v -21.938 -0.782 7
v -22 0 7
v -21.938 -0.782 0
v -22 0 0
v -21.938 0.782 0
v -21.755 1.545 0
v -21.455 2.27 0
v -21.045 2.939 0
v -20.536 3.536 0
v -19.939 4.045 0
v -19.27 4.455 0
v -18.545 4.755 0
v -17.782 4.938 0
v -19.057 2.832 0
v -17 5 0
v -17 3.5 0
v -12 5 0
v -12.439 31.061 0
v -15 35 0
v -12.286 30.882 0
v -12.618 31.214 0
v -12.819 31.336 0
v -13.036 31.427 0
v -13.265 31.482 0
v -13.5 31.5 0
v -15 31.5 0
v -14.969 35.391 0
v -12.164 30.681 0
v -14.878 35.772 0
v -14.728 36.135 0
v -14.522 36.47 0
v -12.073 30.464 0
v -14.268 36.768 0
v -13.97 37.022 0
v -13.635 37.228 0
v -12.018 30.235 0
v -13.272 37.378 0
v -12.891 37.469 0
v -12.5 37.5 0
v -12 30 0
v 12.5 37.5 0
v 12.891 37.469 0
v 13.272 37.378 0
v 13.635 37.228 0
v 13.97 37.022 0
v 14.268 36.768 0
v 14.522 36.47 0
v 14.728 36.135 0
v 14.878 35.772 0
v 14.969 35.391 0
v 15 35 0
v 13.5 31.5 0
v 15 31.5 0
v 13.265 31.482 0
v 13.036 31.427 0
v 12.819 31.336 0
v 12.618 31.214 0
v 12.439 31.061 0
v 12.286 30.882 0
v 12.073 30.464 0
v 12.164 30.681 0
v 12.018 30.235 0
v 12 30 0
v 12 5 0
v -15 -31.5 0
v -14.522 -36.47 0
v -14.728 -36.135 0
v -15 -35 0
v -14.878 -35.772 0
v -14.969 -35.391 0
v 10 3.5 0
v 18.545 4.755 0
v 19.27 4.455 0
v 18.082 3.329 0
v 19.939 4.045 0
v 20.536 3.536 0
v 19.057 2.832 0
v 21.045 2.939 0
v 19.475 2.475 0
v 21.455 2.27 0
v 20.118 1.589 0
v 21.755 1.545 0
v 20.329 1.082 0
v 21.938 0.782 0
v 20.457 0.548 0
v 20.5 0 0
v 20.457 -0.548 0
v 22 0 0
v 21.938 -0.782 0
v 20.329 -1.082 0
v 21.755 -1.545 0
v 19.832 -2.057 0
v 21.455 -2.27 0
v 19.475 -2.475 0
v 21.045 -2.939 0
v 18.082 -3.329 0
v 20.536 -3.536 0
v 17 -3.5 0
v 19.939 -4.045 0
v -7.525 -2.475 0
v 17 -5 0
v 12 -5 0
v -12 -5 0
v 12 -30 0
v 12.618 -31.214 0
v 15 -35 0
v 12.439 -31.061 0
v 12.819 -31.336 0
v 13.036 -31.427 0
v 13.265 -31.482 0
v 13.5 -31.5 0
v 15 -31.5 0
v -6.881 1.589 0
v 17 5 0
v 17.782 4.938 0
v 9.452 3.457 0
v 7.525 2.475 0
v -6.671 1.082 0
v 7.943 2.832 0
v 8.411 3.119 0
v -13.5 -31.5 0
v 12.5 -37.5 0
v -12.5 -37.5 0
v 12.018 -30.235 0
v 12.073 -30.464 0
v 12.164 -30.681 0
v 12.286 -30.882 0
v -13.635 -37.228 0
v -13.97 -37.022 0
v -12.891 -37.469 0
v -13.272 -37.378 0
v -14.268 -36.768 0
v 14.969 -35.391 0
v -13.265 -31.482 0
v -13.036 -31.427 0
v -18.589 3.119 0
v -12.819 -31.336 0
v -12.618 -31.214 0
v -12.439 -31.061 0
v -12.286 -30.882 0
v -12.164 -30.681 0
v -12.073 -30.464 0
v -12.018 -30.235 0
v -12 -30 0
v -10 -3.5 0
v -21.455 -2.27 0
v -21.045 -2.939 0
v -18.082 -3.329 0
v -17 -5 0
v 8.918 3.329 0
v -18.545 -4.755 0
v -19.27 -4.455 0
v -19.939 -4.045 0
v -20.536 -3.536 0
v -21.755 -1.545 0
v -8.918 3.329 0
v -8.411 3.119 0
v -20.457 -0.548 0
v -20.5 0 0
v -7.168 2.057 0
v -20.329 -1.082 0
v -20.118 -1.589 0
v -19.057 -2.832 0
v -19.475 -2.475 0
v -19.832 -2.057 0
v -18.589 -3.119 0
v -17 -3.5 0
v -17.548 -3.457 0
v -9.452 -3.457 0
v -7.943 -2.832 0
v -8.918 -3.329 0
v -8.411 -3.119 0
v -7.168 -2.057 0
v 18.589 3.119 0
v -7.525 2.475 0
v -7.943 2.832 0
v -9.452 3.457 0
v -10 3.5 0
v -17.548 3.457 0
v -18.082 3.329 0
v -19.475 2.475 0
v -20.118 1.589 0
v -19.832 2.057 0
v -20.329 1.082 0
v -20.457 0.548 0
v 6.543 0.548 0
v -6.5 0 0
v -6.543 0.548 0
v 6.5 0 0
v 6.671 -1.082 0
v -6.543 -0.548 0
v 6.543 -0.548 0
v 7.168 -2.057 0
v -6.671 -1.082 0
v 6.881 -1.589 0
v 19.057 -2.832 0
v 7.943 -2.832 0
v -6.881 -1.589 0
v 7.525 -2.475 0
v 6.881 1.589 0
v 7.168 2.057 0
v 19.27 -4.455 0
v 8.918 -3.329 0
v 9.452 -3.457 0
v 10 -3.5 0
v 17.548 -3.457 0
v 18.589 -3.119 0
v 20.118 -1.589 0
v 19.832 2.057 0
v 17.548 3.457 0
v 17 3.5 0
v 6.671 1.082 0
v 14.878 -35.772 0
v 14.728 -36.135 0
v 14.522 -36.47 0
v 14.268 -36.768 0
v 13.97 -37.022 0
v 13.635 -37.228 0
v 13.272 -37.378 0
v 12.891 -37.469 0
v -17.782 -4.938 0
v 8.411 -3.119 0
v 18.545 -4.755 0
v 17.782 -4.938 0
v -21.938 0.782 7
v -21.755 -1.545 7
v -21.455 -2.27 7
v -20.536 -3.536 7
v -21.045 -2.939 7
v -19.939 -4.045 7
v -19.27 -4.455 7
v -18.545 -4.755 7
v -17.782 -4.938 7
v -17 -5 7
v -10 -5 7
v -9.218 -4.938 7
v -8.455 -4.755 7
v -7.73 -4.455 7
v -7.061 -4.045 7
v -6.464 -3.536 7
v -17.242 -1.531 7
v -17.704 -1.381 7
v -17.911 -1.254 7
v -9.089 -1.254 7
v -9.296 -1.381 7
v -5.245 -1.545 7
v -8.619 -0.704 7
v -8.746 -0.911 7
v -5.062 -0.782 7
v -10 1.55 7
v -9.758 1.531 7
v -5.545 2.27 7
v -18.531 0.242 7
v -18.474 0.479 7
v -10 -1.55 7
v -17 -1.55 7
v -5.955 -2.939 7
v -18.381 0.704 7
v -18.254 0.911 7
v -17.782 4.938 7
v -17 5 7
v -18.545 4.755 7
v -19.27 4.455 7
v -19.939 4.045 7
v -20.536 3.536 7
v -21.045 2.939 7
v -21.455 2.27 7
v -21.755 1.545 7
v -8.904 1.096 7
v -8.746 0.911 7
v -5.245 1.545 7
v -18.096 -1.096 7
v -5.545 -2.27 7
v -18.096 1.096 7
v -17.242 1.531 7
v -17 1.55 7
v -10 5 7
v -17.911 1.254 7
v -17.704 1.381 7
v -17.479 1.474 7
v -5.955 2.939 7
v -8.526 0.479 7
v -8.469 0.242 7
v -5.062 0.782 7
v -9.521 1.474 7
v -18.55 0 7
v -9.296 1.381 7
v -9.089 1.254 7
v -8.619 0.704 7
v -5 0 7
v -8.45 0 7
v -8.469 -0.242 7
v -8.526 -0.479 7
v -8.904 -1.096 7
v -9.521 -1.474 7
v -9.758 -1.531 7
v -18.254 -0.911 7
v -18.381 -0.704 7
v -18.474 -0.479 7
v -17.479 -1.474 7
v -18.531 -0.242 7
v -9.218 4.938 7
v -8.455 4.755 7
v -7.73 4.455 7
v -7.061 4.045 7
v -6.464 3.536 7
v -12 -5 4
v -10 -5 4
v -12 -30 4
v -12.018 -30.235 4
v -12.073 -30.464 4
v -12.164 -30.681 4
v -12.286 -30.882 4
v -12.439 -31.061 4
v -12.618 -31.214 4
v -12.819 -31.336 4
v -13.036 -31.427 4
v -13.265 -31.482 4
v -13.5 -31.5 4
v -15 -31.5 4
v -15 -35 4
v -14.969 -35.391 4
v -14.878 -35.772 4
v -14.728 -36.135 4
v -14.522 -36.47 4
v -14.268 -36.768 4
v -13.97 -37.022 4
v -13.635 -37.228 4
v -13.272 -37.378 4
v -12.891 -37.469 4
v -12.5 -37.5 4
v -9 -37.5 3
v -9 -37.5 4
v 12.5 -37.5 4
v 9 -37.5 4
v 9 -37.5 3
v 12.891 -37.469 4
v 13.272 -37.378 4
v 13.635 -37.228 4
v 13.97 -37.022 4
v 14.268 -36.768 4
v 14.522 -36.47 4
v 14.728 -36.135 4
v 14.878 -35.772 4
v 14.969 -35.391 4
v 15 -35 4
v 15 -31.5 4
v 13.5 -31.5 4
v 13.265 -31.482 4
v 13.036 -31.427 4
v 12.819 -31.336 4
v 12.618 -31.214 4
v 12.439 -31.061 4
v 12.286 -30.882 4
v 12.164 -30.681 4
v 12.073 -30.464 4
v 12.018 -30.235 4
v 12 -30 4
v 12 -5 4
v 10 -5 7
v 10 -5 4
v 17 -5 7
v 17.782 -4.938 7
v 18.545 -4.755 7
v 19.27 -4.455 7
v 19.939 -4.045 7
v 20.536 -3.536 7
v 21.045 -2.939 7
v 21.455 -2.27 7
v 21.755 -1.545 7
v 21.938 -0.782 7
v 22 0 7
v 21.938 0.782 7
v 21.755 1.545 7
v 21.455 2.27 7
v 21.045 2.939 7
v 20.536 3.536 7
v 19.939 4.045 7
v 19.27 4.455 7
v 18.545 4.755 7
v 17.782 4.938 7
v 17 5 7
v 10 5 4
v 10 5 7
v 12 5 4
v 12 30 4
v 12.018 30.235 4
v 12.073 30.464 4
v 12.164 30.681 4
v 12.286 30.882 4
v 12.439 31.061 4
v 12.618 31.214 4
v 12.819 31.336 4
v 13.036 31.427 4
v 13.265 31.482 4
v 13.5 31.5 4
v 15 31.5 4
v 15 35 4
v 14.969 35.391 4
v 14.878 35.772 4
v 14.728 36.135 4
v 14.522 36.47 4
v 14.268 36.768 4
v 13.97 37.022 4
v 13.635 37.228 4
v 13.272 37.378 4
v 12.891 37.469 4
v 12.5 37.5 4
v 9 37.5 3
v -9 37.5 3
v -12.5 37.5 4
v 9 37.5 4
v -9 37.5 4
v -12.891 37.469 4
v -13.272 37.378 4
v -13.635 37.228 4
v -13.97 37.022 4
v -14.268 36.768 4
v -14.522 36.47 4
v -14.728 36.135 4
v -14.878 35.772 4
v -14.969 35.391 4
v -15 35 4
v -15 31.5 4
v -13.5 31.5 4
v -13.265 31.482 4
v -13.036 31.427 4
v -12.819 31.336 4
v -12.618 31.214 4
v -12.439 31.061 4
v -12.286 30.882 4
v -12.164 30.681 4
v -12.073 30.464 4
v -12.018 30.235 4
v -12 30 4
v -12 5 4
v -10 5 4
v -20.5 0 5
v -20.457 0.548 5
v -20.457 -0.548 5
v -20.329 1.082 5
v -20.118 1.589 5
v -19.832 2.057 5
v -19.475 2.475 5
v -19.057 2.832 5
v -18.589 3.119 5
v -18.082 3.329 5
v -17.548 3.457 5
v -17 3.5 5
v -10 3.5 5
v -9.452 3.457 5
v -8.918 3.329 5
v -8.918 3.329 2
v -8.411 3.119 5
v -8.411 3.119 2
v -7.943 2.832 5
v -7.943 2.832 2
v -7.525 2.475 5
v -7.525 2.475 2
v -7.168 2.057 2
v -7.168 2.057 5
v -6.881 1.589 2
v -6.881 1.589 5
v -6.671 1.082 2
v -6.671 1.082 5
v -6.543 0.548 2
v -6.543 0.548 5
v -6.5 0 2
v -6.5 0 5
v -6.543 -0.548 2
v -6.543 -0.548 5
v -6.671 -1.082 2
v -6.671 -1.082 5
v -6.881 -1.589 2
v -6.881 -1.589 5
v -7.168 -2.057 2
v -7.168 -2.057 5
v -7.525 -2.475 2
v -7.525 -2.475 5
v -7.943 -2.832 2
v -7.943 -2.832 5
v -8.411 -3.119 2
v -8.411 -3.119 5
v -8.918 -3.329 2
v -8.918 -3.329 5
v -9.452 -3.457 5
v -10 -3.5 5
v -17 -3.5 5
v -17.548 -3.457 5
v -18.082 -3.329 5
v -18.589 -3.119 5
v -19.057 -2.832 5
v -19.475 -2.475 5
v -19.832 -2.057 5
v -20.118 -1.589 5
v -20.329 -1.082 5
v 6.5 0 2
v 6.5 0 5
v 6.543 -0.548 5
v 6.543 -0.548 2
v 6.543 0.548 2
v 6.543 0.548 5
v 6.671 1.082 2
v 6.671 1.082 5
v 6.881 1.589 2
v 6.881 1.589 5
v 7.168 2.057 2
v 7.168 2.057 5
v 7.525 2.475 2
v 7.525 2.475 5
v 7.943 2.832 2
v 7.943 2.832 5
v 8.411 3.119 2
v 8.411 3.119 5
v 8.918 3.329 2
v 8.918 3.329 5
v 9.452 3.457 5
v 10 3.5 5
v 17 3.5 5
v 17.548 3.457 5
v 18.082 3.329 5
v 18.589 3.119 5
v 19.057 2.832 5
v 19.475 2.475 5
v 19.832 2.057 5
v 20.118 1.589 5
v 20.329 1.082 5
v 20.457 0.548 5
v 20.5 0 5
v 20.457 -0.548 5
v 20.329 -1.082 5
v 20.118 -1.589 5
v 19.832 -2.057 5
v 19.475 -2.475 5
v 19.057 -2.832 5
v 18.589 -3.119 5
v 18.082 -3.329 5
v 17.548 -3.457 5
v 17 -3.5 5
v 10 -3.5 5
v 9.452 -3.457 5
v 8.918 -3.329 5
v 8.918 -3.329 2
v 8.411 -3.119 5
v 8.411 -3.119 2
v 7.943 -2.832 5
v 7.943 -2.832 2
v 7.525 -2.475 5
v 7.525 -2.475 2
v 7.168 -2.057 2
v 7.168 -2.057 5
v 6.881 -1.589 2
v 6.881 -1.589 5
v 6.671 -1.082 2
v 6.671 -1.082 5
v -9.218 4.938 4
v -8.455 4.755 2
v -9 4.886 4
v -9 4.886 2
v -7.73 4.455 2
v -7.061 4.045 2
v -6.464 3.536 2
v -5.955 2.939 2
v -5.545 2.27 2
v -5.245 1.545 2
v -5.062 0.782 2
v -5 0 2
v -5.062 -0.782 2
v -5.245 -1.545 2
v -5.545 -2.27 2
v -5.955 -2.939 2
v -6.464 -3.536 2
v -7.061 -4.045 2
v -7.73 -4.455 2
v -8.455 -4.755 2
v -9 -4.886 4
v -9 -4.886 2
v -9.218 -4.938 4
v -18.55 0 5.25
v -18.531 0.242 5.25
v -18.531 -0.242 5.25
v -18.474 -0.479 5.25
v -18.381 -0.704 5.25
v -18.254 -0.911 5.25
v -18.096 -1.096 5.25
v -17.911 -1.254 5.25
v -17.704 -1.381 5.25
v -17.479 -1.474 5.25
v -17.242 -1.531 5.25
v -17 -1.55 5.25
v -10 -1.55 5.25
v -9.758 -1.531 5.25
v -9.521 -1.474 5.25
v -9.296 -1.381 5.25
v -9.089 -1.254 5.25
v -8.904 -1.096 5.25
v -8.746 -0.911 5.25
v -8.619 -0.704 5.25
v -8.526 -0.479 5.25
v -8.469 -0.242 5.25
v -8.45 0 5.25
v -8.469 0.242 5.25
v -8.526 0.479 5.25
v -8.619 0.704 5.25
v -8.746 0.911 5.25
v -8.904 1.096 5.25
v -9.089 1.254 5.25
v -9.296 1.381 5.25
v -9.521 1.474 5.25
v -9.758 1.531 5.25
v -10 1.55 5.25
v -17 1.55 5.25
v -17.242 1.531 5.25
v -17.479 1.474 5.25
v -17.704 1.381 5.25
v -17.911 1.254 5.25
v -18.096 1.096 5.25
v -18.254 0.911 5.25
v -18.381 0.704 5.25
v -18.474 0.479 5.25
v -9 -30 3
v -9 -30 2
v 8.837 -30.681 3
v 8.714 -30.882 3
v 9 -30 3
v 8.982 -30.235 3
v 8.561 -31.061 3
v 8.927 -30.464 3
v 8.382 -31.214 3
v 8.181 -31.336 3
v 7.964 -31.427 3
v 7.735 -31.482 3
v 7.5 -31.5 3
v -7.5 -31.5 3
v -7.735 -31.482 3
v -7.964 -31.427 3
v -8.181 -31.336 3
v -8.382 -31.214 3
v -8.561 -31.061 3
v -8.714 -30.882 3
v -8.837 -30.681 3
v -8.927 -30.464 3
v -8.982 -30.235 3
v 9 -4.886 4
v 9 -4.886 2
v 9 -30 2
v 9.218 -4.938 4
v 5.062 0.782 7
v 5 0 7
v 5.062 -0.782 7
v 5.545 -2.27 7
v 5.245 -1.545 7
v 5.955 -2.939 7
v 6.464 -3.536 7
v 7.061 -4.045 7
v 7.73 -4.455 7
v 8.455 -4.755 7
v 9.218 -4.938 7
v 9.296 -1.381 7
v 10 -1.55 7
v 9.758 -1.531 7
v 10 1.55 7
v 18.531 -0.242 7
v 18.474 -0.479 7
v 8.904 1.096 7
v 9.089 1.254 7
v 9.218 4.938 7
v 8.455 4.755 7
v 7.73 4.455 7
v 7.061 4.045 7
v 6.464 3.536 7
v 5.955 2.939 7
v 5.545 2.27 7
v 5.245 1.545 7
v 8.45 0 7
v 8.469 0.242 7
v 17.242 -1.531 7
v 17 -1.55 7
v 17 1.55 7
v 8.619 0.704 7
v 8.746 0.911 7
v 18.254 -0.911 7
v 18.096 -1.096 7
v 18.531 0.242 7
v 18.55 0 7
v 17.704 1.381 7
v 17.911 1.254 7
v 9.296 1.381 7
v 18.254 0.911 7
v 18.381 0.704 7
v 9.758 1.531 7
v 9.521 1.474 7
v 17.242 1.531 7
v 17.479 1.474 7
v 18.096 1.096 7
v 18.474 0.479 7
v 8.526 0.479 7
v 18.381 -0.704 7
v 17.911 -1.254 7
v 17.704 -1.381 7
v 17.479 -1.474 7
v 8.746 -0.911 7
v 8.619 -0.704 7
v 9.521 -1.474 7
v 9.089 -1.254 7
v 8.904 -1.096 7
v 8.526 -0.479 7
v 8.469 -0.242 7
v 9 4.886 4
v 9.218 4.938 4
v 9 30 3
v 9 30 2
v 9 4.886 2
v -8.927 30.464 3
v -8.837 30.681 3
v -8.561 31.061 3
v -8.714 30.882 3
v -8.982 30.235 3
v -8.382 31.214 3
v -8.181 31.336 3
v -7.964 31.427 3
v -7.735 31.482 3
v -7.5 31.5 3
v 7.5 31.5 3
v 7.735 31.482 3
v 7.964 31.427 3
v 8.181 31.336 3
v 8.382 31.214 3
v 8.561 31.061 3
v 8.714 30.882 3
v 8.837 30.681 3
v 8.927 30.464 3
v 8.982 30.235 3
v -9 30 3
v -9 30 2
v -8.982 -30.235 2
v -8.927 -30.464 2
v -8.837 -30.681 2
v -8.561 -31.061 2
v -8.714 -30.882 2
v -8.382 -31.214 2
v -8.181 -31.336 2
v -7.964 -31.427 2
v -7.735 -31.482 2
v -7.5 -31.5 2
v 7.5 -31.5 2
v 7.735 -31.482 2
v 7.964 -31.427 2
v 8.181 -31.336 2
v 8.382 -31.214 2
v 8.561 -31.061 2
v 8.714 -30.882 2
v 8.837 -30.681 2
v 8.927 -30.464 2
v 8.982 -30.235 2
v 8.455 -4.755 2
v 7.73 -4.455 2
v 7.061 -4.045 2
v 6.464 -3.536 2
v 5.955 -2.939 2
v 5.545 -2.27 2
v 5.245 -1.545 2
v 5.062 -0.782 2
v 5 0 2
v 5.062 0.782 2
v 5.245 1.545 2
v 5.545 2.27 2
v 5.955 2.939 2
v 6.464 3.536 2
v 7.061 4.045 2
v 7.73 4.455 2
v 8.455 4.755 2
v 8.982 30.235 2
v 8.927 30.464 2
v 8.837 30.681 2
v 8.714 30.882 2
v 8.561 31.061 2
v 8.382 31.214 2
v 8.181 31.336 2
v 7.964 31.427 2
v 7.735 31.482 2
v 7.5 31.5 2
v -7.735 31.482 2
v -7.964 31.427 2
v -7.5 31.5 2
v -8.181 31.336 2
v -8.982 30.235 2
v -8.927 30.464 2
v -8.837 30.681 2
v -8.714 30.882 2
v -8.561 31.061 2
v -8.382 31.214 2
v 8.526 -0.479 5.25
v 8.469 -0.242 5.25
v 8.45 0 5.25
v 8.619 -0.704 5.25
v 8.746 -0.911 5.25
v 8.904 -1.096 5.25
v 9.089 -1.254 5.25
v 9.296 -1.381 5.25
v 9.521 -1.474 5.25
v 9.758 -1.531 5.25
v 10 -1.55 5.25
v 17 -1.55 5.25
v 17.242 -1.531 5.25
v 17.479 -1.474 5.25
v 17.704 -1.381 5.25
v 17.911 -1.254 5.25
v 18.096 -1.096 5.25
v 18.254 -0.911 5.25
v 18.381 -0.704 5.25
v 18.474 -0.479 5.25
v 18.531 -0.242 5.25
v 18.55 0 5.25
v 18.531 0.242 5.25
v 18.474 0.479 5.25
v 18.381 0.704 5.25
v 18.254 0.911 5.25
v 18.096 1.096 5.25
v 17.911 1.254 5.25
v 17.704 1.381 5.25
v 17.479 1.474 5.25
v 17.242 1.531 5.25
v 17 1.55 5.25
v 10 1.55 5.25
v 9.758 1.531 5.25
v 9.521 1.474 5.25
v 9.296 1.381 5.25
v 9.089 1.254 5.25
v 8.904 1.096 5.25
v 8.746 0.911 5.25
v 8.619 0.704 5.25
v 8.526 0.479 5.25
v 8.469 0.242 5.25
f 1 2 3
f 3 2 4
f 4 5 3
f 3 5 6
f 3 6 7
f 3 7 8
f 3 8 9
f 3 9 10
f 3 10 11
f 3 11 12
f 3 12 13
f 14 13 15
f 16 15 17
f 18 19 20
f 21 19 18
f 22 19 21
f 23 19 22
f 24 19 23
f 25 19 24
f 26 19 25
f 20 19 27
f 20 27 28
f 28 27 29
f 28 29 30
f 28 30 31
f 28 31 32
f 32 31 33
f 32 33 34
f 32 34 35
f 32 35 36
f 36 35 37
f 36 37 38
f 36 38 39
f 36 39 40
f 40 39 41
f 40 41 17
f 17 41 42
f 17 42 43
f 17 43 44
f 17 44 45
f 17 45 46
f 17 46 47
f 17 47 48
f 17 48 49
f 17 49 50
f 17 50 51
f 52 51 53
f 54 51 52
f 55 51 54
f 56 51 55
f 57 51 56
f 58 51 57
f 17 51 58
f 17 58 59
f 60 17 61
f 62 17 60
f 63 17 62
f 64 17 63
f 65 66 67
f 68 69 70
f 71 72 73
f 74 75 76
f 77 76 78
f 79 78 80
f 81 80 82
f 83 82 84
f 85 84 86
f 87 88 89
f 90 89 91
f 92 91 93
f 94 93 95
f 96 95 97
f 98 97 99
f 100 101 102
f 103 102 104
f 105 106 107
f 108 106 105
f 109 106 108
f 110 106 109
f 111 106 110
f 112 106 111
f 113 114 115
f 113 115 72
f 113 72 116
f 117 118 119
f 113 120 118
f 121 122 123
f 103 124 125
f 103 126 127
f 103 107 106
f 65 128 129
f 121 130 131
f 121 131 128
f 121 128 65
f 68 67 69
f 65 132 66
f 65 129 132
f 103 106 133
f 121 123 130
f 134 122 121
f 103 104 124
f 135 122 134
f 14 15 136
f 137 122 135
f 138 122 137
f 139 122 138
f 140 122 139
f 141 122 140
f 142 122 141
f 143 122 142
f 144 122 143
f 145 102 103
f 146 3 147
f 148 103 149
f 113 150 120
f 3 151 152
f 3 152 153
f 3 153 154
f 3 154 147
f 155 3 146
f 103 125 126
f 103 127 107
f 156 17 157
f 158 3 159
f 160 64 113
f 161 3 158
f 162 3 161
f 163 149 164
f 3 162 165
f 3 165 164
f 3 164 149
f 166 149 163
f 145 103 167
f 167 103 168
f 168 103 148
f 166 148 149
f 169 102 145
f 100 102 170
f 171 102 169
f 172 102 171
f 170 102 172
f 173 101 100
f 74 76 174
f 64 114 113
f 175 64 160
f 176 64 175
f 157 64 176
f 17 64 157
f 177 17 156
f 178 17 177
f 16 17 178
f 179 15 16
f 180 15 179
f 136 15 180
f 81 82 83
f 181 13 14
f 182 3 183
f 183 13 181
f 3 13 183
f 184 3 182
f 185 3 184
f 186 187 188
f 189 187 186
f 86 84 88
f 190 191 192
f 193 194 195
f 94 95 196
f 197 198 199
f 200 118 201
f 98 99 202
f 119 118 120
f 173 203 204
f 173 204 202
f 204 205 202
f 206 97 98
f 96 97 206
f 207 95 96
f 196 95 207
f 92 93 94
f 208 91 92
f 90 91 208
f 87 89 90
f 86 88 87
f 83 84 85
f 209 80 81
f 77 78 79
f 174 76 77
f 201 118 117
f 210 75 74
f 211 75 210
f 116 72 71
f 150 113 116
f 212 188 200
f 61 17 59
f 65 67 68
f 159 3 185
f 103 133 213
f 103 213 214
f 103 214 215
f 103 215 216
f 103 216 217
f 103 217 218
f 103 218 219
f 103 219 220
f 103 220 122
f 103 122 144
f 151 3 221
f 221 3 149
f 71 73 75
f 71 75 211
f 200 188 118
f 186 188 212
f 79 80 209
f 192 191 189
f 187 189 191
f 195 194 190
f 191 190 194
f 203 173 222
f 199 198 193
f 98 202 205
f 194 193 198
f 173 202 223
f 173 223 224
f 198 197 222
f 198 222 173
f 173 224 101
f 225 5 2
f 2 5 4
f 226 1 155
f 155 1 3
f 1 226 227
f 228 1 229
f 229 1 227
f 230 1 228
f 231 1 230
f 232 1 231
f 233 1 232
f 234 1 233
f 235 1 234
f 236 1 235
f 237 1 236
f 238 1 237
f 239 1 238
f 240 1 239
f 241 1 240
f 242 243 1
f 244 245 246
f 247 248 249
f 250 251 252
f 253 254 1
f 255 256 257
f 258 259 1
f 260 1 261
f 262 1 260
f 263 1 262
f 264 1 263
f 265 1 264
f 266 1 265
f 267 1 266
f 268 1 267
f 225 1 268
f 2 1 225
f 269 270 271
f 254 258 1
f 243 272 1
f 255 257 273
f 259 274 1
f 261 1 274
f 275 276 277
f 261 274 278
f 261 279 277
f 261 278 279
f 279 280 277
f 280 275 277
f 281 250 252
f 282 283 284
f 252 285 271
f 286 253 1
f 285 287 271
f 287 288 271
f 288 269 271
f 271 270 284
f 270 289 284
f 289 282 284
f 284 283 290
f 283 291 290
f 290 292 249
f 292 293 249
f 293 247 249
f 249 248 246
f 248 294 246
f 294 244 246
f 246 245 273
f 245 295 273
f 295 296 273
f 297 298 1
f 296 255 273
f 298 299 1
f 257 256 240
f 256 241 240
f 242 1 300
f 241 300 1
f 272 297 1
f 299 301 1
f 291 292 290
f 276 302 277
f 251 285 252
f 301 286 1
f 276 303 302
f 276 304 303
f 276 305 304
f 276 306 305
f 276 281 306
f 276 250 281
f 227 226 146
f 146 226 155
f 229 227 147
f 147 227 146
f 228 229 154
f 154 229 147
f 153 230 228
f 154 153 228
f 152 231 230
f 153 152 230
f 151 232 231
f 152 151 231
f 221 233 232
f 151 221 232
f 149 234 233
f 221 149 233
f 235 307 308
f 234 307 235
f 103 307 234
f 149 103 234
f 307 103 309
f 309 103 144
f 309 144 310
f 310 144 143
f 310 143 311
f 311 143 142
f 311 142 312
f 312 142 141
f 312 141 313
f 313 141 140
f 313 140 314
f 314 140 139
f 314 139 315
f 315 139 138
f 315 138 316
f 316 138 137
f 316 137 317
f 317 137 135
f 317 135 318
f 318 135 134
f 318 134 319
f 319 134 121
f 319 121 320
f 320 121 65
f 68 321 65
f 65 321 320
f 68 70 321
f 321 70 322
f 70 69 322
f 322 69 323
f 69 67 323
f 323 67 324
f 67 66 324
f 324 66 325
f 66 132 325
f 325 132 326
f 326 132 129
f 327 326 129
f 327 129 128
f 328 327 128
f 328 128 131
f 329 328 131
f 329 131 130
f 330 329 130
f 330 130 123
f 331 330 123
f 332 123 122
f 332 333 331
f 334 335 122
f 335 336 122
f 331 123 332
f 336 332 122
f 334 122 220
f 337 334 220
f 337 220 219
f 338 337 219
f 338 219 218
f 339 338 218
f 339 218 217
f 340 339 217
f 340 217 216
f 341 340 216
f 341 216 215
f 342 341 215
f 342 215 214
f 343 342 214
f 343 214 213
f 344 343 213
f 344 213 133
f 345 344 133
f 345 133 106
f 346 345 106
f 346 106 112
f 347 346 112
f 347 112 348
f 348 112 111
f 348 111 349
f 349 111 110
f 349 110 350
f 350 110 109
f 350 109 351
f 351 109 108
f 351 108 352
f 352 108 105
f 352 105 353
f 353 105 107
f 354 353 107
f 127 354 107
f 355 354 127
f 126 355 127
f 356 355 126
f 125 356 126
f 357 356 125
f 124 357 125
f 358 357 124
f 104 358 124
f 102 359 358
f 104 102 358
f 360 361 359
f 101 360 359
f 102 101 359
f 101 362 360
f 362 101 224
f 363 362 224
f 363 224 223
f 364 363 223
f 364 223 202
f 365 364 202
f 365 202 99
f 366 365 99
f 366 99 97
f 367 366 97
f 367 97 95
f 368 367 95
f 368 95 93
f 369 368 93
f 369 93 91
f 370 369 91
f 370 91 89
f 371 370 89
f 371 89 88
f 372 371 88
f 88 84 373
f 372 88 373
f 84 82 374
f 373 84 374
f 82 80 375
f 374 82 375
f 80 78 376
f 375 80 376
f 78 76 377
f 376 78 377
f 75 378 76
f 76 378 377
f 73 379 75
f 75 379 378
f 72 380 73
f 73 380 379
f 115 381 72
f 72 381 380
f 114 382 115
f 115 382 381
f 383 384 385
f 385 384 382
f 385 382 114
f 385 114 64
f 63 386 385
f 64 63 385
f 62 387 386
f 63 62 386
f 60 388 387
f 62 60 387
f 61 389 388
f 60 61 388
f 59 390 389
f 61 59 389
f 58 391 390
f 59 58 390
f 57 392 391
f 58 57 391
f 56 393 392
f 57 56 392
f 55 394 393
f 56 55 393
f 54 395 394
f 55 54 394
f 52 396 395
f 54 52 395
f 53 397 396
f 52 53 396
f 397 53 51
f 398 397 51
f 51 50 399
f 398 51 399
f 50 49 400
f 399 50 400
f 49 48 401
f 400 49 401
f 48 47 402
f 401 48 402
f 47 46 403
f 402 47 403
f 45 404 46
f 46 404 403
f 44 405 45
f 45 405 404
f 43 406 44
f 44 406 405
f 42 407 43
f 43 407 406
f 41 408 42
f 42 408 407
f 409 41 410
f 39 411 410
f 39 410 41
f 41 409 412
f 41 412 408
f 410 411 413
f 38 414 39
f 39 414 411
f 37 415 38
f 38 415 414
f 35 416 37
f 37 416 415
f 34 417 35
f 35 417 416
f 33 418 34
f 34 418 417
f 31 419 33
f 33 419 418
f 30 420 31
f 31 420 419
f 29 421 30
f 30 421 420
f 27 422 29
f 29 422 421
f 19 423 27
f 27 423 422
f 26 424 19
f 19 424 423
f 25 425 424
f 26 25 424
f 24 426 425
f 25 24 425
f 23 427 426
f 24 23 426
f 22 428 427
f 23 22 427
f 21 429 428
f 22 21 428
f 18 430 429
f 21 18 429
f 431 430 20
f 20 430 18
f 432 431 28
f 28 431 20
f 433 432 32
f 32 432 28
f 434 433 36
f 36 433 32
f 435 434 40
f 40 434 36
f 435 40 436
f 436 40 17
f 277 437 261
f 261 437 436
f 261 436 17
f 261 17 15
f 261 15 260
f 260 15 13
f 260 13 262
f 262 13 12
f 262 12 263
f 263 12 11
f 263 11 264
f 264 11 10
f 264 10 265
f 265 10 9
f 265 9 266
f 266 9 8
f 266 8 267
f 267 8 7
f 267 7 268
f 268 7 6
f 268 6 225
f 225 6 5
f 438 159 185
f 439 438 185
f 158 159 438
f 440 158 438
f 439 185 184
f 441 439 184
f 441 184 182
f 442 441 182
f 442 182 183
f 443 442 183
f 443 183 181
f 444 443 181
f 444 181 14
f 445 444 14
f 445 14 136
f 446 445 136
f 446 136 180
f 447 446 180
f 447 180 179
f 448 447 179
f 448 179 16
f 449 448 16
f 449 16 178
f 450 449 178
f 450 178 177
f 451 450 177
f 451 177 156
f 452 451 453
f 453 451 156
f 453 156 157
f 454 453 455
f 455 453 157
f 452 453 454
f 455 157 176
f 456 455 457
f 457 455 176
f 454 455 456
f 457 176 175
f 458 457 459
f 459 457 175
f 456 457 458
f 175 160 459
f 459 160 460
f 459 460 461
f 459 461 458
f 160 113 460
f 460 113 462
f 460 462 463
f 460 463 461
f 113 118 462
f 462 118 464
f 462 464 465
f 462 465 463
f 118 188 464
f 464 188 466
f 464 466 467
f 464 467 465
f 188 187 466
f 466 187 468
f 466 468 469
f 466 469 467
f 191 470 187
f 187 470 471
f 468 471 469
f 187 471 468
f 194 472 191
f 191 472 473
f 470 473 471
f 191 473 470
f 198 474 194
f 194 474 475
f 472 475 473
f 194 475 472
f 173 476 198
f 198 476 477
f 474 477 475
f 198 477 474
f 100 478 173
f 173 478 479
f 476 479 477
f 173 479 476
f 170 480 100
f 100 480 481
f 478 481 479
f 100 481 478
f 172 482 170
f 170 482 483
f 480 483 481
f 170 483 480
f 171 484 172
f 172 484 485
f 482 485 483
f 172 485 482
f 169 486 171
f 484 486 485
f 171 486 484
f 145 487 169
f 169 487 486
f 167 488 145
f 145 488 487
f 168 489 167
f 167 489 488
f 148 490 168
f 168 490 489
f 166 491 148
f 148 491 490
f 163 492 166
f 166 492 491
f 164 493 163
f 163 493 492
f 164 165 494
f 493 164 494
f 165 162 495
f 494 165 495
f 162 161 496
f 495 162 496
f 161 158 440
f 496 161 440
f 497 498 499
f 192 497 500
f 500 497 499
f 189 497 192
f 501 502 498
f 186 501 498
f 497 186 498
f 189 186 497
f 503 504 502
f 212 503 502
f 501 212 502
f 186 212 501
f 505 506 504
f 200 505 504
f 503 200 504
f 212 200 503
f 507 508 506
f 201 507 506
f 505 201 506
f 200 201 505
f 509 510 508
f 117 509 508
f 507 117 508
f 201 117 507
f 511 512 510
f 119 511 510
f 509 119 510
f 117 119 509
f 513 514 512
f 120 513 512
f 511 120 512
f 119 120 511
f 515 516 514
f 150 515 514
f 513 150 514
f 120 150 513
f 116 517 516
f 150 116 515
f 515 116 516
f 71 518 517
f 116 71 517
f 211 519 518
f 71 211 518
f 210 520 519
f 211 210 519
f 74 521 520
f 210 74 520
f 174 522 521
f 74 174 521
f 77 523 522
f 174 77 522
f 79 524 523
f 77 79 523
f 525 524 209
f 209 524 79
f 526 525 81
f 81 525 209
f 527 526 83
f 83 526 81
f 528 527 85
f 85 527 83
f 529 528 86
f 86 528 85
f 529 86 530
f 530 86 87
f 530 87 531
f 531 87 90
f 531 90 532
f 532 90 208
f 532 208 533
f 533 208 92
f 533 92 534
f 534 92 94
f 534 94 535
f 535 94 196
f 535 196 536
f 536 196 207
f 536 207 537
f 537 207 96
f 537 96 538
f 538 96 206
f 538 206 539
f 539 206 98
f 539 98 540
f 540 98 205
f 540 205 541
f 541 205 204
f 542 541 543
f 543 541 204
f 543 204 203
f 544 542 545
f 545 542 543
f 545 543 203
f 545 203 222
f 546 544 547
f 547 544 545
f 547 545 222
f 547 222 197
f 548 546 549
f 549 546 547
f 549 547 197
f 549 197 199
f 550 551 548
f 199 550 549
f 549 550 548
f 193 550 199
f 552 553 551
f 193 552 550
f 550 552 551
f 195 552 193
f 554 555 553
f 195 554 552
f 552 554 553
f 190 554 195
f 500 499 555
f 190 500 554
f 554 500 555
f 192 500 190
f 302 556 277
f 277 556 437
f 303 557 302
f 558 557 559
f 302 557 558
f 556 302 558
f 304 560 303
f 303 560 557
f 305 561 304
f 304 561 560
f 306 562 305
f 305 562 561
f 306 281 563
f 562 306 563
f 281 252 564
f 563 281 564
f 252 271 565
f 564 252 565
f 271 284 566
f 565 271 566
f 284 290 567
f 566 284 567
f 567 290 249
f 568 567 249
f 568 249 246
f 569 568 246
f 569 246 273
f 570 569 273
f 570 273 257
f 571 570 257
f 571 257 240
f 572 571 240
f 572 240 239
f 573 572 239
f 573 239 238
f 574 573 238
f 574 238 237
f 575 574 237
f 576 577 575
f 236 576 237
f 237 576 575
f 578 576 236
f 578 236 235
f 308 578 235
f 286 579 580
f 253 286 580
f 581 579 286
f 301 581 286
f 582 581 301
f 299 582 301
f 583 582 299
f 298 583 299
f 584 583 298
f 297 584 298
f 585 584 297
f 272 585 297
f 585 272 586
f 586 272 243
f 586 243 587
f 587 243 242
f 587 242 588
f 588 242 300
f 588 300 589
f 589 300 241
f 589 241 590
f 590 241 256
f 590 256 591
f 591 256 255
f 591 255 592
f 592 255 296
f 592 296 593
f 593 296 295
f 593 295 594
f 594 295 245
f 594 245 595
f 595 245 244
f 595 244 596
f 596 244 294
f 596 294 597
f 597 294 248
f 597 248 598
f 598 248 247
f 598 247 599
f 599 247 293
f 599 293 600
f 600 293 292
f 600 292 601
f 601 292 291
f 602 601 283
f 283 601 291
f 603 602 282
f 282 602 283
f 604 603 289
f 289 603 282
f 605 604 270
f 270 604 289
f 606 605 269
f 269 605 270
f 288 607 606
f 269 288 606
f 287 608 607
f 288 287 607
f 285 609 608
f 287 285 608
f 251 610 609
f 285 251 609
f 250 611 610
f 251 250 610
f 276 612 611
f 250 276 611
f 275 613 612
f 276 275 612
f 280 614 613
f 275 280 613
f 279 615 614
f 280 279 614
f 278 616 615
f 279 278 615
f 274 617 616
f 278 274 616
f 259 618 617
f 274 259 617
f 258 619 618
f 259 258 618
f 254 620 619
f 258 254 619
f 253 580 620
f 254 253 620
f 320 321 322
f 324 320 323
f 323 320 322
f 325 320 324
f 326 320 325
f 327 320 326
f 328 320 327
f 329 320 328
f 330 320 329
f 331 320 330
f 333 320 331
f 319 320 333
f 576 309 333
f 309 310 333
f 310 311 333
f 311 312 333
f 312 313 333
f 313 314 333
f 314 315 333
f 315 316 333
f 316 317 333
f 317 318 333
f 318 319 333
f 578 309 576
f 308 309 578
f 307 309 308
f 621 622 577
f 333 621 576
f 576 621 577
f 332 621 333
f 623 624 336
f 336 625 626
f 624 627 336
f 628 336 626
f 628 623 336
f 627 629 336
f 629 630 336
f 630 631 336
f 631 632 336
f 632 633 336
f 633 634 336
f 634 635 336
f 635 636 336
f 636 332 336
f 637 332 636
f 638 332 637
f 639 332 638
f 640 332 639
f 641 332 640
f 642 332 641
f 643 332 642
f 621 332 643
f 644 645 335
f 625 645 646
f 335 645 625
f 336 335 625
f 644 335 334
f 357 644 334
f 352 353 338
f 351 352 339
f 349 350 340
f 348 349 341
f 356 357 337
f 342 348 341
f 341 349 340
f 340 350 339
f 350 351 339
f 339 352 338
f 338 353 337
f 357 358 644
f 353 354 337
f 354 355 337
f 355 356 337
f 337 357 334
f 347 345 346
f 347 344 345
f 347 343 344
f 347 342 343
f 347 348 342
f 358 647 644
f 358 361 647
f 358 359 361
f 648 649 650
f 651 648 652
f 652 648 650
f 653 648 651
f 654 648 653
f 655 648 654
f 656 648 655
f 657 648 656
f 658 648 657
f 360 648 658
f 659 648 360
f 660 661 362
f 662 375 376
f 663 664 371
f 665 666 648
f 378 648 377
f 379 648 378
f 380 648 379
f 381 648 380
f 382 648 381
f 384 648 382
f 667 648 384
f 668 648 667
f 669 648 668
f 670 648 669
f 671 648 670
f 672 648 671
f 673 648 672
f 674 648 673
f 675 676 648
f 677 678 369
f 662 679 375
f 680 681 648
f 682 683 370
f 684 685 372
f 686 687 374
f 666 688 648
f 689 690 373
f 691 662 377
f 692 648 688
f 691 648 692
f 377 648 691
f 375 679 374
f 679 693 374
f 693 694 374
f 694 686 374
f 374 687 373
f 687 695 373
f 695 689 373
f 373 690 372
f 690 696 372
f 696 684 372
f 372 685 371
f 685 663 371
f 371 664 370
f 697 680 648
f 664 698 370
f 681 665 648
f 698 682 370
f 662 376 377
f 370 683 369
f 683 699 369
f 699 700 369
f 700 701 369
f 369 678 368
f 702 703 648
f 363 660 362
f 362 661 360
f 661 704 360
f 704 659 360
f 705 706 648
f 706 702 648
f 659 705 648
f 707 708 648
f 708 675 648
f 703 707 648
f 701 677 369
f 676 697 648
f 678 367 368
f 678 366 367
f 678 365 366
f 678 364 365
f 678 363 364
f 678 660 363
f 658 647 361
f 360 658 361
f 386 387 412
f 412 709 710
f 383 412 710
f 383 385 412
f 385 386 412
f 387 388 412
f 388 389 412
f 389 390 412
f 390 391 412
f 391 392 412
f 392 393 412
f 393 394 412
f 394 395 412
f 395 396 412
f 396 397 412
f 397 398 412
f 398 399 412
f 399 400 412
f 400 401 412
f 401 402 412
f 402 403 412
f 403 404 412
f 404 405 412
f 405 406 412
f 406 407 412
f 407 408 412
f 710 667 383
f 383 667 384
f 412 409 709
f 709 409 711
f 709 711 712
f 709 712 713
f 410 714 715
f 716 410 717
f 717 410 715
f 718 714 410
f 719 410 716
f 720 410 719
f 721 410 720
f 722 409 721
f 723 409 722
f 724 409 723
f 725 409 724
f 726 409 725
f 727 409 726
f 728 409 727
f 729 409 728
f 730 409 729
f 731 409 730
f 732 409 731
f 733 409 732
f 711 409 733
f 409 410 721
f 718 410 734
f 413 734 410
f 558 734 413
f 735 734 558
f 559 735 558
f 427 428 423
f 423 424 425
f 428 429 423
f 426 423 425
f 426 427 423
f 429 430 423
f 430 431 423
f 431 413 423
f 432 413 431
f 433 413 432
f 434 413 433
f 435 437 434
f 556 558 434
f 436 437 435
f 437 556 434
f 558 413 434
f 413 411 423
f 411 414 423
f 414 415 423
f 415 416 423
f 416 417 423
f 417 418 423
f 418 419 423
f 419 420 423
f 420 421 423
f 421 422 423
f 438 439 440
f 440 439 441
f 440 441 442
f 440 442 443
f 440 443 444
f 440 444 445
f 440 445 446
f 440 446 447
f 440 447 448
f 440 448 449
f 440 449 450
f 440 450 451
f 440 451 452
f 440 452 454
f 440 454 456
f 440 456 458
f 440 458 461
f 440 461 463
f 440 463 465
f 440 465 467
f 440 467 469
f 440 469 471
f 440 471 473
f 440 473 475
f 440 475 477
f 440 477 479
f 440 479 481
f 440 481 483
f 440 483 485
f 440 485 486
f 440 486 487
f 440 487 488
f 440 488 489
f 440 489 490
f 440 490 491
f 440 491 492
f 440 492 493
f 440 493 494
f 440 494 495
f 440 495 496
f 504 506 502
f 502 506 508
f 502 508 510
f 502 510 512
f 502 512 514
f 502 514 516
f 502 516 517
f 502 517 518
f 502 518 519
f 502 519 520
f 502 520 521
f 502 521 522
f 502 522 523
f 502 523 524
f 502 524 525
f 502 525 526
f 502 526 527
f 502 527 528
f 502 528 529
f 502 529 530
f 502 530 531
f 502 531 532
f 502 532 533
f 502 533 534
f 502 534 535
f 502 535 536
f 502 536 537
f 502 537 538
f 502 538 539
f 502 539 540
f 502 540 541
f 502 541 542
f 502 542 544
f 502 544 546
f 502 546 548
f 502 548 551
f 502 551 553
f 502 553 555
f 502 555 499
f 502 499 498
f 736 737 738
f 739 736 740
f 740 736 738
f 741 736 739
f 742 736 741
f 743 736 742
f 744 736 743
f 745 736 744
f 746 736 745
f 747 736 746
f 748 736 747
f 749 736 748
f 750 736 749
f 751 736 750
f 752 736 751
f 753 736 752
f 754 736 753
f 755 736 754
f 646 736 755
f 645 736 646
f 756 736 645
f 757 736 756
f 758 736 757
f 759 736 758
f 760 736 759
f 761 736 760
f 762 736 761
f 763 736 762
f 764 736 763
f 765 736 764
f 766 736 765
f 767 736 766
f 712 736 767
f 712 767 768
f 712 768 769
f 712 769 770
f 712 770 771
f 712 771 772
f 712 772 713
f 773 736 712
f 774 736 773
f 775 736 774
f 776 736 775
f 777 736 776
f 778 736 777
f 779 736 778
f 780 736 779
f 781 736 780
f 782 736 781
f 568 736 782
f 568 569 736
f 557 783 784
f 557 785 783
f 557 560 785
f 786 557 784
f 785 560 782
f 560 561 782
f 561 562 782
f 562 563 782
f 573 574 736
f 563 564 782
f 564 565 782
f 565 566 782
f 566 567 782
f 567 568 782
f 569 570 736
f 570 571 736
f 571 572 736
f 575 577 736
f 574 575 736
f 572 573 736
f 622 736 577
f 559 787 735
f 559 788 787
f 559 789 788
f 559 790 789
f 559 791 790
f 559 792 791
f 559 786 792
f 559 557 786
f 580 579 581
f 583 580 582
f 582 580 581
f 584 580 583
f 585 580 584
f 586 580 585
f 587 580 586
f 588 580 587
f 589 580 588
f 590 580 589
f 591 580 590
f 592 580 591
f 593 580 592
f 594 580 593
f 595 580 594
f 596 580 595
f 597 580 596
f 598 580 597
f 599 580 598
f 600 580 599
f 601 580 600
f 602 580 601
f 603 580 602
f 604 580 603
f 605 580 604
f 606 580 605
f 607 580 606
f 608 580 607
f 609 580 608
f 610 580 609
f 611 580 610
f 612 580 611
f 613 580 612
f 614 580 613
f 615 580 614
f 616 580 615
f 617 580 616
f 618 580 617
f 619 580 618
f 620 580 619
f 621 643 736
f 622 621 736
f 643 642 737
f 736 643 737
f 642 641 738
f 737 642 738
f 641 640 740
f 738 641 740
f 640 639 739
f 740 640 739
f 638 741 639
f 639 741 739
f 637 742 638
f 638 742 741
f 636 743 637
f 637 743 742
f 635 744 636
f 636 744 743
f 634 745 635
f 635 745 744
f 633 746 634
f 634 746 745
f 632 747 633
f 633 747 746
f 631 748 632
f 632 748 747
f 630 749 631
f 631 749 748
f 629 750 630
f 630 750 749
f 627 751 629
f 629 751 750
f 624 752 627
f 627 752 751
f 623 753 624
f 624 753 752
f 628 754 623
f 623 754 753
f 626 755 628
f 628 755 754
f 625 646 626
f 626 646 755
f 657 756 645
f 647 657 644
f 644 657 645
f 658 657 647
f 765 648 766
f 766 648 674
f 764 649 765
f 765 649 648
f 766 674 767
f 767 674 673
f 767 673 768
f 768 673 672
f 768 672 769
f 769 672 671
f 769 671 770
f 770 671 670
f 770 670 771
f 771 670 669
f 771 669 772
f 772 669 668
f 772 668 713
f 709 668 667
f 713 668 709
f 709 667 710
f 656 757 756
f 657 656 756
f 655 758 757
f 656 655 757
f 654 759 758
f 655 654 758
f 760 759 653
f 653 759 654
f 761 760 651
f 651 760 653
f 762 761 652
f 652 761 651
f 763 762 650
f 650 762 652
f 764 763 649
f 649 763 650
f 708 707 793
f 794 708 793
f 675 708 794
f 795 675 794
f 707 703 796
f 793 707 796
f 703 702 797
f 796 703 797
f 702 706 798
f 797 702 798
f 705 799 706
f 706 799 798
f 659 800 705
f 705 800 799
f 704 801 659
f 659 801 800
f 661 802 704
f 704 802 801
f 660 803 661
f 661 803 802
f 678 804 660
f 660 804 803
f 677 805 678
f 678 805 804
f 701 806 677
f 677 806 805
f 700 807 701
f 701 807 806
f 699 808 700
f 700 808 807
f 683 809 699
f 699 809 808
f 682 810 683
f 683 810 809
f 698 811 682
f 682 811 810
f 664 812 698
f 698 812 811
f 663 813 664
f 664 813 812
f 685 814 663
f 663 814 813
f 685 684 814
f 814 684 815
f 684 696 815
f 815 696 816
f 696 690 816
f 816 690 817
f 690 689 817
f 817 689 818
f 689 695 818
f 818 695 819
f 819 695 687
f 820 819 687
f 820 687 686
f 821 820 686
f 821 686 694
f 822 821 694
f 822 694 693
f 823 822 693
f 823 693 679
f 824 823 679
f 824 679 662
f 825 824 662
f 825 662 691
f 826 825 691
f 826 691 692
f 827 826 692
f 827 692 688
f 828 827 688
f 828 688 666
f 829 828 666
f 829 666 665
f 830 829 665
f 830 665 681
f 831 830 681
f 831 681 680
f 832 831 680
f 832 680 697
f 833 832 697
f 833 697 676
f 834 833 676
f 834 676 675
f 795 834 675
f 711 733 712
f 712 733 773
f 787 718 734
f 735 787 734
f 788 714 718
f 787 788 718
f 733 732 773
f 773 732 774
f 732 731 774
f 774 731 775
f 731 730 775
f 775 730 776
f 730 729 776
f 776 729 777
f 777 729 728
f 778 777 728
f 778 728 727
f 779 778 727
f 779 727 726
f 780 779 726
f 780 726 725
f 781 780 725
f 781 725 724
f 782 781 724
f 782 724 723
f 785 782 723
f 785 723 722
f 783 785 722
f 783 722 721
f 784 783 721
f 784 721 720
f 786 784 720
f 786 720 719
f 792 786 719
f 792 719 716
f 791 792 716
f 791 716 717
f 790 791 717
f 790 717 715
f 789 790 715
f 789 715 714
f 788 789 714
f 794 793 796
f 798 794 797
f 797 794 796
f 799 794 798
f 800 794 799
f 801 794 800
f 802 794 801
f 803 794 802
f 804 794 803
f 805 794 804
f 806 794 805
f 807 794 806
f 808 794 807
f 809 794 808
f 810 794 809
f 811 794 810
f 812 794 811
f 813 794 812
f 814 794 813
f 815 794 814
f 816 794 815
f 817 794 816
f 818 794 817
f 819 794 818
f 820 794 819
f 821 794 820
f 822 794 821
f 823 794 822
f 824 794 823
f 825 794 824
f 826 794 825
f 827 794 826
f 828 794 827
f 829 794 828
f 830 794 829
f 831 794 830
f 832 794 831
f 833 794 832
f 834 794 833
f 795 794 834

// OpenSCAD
$fn = 40;

translate([10,0,0]) {
	difference() {
		#slit(7,10/2,7);
		translate([0,0,-1])
		#slit(7,7/2,6);

		translate([0,0,5.25])
		#slit(7,3.1/2,7);
	}
}


translate([-10,0,0]) {
	mirror([1,0,0])
	difference() {
		#slit(7,10/2,7);
		translate([0,0,-1])
		#slit(7,7/2,6);

		translate([0,0,5.25])
		#slit(7,3.1/2,7);
	}
}





translate([-25/2,-35,0])
difference() {
	#hull() {
		translate([0,0,0]) cylinder(h = 4, r=5/2);
		translate([25,0,0]) cylinder(h = 4, r=5/2);

		translate([0,70,0]) cylinder(h = 4, r=5/2);
		translate([25,70,0]) cylinder(h = 4, r=5/2);
	}


	translate([5,5,2])
	#hull() {
		translate([0,0,0]) cylinder(h = 5, r=3/2);
		translate([15,0,0]) cylinder(h = 5, r=3/2);

		translate([0,60,0]) cylinder(h = 5, r=3/2);
		translate([15,60,0]) cylinder(h = 5, r=3/2);
	}	

	translate([5,-5,3])
	#hull() {
		translate([0,0,0]) cylinder(h = 5, r=3/2);
		translate([15,0,0]) cylinder(h = 5, r=3/2);

		translate([0,80,0]) cylinder(h = 5, r=3/2);
		translate([15,80,0]) cylinder(h = 5, r=3/2);
	}	


	translate([-16,5,-0.5])
	#hull() {
		translate([0,0,0]) cylinder(h = 5, r=3/2);
		translate([15,0,0]) cylinder(h = 5, r=3/2);

		translate([0,60,0]) cylinder(h = 5, r=3/2);
		translate([15,60,0]) cylinder(h = 5, r=3/2);
	}	

	translate([23+3,5,-0.5])
	#hull() {
		translate([0,0,0]) cylinder(h = 5, r=3/2);
		translate([15,0,0]) cylinder(h = 5, r=3/2);

		translate([0,60,0]) cylinder(h = 5, r=3/2);
		translate([15,60,0]) cylinder(h = 5, r=3/2);
	}	

	translate([25/2,35,0])
	union() {
		translate([10,0,0]) {
			translate([0,0,-1])
			#slit(7,7/2,6);
		}
		translate([-10,0,0]) {
			mirror([1,0,0])
			translate([0,0,-1])
			#slit(7,7/2,6);
		}	
	}

}


/*
difference() {
	union() {
		translate([-7,0,0])
		rotate(a=[0,0,30])
		holderWing();

		translate([7,0,0])
		rotate(a=[0,0,-30])
		holderWing();	

		hull() {
			translate([7,0,0]) cylinder(h = 10, r=2.5/2);
			translate([-7,0,0]) cylinder(h = 10, r=2.5/2);
		}
	}	

	translate([0,3,4]) 
	rotate(a=[90,0,0])
	cylinder(h = 10, r=3.1/2);
	
}
*/




module holderWing() {
	union() {
		translate([0,0,0]) cylinder(h = 10, r=2.5/2);
		translate([-2.5/2,0,0])
		difference() {
			cube(size=[2.5,20,10]);

			translate([-1,10,5]) 
			rotate(a=[90,0,90]) 
			slit(5,1.55);	
		}	
	}	
}







module slit(length,radius,height) {
	hull() {
		translate([length,0,0]) cylinder(h = height, r=radius);
		translate([0,0,0]) cylinder(h = height, r=radius);
	}
}


	
